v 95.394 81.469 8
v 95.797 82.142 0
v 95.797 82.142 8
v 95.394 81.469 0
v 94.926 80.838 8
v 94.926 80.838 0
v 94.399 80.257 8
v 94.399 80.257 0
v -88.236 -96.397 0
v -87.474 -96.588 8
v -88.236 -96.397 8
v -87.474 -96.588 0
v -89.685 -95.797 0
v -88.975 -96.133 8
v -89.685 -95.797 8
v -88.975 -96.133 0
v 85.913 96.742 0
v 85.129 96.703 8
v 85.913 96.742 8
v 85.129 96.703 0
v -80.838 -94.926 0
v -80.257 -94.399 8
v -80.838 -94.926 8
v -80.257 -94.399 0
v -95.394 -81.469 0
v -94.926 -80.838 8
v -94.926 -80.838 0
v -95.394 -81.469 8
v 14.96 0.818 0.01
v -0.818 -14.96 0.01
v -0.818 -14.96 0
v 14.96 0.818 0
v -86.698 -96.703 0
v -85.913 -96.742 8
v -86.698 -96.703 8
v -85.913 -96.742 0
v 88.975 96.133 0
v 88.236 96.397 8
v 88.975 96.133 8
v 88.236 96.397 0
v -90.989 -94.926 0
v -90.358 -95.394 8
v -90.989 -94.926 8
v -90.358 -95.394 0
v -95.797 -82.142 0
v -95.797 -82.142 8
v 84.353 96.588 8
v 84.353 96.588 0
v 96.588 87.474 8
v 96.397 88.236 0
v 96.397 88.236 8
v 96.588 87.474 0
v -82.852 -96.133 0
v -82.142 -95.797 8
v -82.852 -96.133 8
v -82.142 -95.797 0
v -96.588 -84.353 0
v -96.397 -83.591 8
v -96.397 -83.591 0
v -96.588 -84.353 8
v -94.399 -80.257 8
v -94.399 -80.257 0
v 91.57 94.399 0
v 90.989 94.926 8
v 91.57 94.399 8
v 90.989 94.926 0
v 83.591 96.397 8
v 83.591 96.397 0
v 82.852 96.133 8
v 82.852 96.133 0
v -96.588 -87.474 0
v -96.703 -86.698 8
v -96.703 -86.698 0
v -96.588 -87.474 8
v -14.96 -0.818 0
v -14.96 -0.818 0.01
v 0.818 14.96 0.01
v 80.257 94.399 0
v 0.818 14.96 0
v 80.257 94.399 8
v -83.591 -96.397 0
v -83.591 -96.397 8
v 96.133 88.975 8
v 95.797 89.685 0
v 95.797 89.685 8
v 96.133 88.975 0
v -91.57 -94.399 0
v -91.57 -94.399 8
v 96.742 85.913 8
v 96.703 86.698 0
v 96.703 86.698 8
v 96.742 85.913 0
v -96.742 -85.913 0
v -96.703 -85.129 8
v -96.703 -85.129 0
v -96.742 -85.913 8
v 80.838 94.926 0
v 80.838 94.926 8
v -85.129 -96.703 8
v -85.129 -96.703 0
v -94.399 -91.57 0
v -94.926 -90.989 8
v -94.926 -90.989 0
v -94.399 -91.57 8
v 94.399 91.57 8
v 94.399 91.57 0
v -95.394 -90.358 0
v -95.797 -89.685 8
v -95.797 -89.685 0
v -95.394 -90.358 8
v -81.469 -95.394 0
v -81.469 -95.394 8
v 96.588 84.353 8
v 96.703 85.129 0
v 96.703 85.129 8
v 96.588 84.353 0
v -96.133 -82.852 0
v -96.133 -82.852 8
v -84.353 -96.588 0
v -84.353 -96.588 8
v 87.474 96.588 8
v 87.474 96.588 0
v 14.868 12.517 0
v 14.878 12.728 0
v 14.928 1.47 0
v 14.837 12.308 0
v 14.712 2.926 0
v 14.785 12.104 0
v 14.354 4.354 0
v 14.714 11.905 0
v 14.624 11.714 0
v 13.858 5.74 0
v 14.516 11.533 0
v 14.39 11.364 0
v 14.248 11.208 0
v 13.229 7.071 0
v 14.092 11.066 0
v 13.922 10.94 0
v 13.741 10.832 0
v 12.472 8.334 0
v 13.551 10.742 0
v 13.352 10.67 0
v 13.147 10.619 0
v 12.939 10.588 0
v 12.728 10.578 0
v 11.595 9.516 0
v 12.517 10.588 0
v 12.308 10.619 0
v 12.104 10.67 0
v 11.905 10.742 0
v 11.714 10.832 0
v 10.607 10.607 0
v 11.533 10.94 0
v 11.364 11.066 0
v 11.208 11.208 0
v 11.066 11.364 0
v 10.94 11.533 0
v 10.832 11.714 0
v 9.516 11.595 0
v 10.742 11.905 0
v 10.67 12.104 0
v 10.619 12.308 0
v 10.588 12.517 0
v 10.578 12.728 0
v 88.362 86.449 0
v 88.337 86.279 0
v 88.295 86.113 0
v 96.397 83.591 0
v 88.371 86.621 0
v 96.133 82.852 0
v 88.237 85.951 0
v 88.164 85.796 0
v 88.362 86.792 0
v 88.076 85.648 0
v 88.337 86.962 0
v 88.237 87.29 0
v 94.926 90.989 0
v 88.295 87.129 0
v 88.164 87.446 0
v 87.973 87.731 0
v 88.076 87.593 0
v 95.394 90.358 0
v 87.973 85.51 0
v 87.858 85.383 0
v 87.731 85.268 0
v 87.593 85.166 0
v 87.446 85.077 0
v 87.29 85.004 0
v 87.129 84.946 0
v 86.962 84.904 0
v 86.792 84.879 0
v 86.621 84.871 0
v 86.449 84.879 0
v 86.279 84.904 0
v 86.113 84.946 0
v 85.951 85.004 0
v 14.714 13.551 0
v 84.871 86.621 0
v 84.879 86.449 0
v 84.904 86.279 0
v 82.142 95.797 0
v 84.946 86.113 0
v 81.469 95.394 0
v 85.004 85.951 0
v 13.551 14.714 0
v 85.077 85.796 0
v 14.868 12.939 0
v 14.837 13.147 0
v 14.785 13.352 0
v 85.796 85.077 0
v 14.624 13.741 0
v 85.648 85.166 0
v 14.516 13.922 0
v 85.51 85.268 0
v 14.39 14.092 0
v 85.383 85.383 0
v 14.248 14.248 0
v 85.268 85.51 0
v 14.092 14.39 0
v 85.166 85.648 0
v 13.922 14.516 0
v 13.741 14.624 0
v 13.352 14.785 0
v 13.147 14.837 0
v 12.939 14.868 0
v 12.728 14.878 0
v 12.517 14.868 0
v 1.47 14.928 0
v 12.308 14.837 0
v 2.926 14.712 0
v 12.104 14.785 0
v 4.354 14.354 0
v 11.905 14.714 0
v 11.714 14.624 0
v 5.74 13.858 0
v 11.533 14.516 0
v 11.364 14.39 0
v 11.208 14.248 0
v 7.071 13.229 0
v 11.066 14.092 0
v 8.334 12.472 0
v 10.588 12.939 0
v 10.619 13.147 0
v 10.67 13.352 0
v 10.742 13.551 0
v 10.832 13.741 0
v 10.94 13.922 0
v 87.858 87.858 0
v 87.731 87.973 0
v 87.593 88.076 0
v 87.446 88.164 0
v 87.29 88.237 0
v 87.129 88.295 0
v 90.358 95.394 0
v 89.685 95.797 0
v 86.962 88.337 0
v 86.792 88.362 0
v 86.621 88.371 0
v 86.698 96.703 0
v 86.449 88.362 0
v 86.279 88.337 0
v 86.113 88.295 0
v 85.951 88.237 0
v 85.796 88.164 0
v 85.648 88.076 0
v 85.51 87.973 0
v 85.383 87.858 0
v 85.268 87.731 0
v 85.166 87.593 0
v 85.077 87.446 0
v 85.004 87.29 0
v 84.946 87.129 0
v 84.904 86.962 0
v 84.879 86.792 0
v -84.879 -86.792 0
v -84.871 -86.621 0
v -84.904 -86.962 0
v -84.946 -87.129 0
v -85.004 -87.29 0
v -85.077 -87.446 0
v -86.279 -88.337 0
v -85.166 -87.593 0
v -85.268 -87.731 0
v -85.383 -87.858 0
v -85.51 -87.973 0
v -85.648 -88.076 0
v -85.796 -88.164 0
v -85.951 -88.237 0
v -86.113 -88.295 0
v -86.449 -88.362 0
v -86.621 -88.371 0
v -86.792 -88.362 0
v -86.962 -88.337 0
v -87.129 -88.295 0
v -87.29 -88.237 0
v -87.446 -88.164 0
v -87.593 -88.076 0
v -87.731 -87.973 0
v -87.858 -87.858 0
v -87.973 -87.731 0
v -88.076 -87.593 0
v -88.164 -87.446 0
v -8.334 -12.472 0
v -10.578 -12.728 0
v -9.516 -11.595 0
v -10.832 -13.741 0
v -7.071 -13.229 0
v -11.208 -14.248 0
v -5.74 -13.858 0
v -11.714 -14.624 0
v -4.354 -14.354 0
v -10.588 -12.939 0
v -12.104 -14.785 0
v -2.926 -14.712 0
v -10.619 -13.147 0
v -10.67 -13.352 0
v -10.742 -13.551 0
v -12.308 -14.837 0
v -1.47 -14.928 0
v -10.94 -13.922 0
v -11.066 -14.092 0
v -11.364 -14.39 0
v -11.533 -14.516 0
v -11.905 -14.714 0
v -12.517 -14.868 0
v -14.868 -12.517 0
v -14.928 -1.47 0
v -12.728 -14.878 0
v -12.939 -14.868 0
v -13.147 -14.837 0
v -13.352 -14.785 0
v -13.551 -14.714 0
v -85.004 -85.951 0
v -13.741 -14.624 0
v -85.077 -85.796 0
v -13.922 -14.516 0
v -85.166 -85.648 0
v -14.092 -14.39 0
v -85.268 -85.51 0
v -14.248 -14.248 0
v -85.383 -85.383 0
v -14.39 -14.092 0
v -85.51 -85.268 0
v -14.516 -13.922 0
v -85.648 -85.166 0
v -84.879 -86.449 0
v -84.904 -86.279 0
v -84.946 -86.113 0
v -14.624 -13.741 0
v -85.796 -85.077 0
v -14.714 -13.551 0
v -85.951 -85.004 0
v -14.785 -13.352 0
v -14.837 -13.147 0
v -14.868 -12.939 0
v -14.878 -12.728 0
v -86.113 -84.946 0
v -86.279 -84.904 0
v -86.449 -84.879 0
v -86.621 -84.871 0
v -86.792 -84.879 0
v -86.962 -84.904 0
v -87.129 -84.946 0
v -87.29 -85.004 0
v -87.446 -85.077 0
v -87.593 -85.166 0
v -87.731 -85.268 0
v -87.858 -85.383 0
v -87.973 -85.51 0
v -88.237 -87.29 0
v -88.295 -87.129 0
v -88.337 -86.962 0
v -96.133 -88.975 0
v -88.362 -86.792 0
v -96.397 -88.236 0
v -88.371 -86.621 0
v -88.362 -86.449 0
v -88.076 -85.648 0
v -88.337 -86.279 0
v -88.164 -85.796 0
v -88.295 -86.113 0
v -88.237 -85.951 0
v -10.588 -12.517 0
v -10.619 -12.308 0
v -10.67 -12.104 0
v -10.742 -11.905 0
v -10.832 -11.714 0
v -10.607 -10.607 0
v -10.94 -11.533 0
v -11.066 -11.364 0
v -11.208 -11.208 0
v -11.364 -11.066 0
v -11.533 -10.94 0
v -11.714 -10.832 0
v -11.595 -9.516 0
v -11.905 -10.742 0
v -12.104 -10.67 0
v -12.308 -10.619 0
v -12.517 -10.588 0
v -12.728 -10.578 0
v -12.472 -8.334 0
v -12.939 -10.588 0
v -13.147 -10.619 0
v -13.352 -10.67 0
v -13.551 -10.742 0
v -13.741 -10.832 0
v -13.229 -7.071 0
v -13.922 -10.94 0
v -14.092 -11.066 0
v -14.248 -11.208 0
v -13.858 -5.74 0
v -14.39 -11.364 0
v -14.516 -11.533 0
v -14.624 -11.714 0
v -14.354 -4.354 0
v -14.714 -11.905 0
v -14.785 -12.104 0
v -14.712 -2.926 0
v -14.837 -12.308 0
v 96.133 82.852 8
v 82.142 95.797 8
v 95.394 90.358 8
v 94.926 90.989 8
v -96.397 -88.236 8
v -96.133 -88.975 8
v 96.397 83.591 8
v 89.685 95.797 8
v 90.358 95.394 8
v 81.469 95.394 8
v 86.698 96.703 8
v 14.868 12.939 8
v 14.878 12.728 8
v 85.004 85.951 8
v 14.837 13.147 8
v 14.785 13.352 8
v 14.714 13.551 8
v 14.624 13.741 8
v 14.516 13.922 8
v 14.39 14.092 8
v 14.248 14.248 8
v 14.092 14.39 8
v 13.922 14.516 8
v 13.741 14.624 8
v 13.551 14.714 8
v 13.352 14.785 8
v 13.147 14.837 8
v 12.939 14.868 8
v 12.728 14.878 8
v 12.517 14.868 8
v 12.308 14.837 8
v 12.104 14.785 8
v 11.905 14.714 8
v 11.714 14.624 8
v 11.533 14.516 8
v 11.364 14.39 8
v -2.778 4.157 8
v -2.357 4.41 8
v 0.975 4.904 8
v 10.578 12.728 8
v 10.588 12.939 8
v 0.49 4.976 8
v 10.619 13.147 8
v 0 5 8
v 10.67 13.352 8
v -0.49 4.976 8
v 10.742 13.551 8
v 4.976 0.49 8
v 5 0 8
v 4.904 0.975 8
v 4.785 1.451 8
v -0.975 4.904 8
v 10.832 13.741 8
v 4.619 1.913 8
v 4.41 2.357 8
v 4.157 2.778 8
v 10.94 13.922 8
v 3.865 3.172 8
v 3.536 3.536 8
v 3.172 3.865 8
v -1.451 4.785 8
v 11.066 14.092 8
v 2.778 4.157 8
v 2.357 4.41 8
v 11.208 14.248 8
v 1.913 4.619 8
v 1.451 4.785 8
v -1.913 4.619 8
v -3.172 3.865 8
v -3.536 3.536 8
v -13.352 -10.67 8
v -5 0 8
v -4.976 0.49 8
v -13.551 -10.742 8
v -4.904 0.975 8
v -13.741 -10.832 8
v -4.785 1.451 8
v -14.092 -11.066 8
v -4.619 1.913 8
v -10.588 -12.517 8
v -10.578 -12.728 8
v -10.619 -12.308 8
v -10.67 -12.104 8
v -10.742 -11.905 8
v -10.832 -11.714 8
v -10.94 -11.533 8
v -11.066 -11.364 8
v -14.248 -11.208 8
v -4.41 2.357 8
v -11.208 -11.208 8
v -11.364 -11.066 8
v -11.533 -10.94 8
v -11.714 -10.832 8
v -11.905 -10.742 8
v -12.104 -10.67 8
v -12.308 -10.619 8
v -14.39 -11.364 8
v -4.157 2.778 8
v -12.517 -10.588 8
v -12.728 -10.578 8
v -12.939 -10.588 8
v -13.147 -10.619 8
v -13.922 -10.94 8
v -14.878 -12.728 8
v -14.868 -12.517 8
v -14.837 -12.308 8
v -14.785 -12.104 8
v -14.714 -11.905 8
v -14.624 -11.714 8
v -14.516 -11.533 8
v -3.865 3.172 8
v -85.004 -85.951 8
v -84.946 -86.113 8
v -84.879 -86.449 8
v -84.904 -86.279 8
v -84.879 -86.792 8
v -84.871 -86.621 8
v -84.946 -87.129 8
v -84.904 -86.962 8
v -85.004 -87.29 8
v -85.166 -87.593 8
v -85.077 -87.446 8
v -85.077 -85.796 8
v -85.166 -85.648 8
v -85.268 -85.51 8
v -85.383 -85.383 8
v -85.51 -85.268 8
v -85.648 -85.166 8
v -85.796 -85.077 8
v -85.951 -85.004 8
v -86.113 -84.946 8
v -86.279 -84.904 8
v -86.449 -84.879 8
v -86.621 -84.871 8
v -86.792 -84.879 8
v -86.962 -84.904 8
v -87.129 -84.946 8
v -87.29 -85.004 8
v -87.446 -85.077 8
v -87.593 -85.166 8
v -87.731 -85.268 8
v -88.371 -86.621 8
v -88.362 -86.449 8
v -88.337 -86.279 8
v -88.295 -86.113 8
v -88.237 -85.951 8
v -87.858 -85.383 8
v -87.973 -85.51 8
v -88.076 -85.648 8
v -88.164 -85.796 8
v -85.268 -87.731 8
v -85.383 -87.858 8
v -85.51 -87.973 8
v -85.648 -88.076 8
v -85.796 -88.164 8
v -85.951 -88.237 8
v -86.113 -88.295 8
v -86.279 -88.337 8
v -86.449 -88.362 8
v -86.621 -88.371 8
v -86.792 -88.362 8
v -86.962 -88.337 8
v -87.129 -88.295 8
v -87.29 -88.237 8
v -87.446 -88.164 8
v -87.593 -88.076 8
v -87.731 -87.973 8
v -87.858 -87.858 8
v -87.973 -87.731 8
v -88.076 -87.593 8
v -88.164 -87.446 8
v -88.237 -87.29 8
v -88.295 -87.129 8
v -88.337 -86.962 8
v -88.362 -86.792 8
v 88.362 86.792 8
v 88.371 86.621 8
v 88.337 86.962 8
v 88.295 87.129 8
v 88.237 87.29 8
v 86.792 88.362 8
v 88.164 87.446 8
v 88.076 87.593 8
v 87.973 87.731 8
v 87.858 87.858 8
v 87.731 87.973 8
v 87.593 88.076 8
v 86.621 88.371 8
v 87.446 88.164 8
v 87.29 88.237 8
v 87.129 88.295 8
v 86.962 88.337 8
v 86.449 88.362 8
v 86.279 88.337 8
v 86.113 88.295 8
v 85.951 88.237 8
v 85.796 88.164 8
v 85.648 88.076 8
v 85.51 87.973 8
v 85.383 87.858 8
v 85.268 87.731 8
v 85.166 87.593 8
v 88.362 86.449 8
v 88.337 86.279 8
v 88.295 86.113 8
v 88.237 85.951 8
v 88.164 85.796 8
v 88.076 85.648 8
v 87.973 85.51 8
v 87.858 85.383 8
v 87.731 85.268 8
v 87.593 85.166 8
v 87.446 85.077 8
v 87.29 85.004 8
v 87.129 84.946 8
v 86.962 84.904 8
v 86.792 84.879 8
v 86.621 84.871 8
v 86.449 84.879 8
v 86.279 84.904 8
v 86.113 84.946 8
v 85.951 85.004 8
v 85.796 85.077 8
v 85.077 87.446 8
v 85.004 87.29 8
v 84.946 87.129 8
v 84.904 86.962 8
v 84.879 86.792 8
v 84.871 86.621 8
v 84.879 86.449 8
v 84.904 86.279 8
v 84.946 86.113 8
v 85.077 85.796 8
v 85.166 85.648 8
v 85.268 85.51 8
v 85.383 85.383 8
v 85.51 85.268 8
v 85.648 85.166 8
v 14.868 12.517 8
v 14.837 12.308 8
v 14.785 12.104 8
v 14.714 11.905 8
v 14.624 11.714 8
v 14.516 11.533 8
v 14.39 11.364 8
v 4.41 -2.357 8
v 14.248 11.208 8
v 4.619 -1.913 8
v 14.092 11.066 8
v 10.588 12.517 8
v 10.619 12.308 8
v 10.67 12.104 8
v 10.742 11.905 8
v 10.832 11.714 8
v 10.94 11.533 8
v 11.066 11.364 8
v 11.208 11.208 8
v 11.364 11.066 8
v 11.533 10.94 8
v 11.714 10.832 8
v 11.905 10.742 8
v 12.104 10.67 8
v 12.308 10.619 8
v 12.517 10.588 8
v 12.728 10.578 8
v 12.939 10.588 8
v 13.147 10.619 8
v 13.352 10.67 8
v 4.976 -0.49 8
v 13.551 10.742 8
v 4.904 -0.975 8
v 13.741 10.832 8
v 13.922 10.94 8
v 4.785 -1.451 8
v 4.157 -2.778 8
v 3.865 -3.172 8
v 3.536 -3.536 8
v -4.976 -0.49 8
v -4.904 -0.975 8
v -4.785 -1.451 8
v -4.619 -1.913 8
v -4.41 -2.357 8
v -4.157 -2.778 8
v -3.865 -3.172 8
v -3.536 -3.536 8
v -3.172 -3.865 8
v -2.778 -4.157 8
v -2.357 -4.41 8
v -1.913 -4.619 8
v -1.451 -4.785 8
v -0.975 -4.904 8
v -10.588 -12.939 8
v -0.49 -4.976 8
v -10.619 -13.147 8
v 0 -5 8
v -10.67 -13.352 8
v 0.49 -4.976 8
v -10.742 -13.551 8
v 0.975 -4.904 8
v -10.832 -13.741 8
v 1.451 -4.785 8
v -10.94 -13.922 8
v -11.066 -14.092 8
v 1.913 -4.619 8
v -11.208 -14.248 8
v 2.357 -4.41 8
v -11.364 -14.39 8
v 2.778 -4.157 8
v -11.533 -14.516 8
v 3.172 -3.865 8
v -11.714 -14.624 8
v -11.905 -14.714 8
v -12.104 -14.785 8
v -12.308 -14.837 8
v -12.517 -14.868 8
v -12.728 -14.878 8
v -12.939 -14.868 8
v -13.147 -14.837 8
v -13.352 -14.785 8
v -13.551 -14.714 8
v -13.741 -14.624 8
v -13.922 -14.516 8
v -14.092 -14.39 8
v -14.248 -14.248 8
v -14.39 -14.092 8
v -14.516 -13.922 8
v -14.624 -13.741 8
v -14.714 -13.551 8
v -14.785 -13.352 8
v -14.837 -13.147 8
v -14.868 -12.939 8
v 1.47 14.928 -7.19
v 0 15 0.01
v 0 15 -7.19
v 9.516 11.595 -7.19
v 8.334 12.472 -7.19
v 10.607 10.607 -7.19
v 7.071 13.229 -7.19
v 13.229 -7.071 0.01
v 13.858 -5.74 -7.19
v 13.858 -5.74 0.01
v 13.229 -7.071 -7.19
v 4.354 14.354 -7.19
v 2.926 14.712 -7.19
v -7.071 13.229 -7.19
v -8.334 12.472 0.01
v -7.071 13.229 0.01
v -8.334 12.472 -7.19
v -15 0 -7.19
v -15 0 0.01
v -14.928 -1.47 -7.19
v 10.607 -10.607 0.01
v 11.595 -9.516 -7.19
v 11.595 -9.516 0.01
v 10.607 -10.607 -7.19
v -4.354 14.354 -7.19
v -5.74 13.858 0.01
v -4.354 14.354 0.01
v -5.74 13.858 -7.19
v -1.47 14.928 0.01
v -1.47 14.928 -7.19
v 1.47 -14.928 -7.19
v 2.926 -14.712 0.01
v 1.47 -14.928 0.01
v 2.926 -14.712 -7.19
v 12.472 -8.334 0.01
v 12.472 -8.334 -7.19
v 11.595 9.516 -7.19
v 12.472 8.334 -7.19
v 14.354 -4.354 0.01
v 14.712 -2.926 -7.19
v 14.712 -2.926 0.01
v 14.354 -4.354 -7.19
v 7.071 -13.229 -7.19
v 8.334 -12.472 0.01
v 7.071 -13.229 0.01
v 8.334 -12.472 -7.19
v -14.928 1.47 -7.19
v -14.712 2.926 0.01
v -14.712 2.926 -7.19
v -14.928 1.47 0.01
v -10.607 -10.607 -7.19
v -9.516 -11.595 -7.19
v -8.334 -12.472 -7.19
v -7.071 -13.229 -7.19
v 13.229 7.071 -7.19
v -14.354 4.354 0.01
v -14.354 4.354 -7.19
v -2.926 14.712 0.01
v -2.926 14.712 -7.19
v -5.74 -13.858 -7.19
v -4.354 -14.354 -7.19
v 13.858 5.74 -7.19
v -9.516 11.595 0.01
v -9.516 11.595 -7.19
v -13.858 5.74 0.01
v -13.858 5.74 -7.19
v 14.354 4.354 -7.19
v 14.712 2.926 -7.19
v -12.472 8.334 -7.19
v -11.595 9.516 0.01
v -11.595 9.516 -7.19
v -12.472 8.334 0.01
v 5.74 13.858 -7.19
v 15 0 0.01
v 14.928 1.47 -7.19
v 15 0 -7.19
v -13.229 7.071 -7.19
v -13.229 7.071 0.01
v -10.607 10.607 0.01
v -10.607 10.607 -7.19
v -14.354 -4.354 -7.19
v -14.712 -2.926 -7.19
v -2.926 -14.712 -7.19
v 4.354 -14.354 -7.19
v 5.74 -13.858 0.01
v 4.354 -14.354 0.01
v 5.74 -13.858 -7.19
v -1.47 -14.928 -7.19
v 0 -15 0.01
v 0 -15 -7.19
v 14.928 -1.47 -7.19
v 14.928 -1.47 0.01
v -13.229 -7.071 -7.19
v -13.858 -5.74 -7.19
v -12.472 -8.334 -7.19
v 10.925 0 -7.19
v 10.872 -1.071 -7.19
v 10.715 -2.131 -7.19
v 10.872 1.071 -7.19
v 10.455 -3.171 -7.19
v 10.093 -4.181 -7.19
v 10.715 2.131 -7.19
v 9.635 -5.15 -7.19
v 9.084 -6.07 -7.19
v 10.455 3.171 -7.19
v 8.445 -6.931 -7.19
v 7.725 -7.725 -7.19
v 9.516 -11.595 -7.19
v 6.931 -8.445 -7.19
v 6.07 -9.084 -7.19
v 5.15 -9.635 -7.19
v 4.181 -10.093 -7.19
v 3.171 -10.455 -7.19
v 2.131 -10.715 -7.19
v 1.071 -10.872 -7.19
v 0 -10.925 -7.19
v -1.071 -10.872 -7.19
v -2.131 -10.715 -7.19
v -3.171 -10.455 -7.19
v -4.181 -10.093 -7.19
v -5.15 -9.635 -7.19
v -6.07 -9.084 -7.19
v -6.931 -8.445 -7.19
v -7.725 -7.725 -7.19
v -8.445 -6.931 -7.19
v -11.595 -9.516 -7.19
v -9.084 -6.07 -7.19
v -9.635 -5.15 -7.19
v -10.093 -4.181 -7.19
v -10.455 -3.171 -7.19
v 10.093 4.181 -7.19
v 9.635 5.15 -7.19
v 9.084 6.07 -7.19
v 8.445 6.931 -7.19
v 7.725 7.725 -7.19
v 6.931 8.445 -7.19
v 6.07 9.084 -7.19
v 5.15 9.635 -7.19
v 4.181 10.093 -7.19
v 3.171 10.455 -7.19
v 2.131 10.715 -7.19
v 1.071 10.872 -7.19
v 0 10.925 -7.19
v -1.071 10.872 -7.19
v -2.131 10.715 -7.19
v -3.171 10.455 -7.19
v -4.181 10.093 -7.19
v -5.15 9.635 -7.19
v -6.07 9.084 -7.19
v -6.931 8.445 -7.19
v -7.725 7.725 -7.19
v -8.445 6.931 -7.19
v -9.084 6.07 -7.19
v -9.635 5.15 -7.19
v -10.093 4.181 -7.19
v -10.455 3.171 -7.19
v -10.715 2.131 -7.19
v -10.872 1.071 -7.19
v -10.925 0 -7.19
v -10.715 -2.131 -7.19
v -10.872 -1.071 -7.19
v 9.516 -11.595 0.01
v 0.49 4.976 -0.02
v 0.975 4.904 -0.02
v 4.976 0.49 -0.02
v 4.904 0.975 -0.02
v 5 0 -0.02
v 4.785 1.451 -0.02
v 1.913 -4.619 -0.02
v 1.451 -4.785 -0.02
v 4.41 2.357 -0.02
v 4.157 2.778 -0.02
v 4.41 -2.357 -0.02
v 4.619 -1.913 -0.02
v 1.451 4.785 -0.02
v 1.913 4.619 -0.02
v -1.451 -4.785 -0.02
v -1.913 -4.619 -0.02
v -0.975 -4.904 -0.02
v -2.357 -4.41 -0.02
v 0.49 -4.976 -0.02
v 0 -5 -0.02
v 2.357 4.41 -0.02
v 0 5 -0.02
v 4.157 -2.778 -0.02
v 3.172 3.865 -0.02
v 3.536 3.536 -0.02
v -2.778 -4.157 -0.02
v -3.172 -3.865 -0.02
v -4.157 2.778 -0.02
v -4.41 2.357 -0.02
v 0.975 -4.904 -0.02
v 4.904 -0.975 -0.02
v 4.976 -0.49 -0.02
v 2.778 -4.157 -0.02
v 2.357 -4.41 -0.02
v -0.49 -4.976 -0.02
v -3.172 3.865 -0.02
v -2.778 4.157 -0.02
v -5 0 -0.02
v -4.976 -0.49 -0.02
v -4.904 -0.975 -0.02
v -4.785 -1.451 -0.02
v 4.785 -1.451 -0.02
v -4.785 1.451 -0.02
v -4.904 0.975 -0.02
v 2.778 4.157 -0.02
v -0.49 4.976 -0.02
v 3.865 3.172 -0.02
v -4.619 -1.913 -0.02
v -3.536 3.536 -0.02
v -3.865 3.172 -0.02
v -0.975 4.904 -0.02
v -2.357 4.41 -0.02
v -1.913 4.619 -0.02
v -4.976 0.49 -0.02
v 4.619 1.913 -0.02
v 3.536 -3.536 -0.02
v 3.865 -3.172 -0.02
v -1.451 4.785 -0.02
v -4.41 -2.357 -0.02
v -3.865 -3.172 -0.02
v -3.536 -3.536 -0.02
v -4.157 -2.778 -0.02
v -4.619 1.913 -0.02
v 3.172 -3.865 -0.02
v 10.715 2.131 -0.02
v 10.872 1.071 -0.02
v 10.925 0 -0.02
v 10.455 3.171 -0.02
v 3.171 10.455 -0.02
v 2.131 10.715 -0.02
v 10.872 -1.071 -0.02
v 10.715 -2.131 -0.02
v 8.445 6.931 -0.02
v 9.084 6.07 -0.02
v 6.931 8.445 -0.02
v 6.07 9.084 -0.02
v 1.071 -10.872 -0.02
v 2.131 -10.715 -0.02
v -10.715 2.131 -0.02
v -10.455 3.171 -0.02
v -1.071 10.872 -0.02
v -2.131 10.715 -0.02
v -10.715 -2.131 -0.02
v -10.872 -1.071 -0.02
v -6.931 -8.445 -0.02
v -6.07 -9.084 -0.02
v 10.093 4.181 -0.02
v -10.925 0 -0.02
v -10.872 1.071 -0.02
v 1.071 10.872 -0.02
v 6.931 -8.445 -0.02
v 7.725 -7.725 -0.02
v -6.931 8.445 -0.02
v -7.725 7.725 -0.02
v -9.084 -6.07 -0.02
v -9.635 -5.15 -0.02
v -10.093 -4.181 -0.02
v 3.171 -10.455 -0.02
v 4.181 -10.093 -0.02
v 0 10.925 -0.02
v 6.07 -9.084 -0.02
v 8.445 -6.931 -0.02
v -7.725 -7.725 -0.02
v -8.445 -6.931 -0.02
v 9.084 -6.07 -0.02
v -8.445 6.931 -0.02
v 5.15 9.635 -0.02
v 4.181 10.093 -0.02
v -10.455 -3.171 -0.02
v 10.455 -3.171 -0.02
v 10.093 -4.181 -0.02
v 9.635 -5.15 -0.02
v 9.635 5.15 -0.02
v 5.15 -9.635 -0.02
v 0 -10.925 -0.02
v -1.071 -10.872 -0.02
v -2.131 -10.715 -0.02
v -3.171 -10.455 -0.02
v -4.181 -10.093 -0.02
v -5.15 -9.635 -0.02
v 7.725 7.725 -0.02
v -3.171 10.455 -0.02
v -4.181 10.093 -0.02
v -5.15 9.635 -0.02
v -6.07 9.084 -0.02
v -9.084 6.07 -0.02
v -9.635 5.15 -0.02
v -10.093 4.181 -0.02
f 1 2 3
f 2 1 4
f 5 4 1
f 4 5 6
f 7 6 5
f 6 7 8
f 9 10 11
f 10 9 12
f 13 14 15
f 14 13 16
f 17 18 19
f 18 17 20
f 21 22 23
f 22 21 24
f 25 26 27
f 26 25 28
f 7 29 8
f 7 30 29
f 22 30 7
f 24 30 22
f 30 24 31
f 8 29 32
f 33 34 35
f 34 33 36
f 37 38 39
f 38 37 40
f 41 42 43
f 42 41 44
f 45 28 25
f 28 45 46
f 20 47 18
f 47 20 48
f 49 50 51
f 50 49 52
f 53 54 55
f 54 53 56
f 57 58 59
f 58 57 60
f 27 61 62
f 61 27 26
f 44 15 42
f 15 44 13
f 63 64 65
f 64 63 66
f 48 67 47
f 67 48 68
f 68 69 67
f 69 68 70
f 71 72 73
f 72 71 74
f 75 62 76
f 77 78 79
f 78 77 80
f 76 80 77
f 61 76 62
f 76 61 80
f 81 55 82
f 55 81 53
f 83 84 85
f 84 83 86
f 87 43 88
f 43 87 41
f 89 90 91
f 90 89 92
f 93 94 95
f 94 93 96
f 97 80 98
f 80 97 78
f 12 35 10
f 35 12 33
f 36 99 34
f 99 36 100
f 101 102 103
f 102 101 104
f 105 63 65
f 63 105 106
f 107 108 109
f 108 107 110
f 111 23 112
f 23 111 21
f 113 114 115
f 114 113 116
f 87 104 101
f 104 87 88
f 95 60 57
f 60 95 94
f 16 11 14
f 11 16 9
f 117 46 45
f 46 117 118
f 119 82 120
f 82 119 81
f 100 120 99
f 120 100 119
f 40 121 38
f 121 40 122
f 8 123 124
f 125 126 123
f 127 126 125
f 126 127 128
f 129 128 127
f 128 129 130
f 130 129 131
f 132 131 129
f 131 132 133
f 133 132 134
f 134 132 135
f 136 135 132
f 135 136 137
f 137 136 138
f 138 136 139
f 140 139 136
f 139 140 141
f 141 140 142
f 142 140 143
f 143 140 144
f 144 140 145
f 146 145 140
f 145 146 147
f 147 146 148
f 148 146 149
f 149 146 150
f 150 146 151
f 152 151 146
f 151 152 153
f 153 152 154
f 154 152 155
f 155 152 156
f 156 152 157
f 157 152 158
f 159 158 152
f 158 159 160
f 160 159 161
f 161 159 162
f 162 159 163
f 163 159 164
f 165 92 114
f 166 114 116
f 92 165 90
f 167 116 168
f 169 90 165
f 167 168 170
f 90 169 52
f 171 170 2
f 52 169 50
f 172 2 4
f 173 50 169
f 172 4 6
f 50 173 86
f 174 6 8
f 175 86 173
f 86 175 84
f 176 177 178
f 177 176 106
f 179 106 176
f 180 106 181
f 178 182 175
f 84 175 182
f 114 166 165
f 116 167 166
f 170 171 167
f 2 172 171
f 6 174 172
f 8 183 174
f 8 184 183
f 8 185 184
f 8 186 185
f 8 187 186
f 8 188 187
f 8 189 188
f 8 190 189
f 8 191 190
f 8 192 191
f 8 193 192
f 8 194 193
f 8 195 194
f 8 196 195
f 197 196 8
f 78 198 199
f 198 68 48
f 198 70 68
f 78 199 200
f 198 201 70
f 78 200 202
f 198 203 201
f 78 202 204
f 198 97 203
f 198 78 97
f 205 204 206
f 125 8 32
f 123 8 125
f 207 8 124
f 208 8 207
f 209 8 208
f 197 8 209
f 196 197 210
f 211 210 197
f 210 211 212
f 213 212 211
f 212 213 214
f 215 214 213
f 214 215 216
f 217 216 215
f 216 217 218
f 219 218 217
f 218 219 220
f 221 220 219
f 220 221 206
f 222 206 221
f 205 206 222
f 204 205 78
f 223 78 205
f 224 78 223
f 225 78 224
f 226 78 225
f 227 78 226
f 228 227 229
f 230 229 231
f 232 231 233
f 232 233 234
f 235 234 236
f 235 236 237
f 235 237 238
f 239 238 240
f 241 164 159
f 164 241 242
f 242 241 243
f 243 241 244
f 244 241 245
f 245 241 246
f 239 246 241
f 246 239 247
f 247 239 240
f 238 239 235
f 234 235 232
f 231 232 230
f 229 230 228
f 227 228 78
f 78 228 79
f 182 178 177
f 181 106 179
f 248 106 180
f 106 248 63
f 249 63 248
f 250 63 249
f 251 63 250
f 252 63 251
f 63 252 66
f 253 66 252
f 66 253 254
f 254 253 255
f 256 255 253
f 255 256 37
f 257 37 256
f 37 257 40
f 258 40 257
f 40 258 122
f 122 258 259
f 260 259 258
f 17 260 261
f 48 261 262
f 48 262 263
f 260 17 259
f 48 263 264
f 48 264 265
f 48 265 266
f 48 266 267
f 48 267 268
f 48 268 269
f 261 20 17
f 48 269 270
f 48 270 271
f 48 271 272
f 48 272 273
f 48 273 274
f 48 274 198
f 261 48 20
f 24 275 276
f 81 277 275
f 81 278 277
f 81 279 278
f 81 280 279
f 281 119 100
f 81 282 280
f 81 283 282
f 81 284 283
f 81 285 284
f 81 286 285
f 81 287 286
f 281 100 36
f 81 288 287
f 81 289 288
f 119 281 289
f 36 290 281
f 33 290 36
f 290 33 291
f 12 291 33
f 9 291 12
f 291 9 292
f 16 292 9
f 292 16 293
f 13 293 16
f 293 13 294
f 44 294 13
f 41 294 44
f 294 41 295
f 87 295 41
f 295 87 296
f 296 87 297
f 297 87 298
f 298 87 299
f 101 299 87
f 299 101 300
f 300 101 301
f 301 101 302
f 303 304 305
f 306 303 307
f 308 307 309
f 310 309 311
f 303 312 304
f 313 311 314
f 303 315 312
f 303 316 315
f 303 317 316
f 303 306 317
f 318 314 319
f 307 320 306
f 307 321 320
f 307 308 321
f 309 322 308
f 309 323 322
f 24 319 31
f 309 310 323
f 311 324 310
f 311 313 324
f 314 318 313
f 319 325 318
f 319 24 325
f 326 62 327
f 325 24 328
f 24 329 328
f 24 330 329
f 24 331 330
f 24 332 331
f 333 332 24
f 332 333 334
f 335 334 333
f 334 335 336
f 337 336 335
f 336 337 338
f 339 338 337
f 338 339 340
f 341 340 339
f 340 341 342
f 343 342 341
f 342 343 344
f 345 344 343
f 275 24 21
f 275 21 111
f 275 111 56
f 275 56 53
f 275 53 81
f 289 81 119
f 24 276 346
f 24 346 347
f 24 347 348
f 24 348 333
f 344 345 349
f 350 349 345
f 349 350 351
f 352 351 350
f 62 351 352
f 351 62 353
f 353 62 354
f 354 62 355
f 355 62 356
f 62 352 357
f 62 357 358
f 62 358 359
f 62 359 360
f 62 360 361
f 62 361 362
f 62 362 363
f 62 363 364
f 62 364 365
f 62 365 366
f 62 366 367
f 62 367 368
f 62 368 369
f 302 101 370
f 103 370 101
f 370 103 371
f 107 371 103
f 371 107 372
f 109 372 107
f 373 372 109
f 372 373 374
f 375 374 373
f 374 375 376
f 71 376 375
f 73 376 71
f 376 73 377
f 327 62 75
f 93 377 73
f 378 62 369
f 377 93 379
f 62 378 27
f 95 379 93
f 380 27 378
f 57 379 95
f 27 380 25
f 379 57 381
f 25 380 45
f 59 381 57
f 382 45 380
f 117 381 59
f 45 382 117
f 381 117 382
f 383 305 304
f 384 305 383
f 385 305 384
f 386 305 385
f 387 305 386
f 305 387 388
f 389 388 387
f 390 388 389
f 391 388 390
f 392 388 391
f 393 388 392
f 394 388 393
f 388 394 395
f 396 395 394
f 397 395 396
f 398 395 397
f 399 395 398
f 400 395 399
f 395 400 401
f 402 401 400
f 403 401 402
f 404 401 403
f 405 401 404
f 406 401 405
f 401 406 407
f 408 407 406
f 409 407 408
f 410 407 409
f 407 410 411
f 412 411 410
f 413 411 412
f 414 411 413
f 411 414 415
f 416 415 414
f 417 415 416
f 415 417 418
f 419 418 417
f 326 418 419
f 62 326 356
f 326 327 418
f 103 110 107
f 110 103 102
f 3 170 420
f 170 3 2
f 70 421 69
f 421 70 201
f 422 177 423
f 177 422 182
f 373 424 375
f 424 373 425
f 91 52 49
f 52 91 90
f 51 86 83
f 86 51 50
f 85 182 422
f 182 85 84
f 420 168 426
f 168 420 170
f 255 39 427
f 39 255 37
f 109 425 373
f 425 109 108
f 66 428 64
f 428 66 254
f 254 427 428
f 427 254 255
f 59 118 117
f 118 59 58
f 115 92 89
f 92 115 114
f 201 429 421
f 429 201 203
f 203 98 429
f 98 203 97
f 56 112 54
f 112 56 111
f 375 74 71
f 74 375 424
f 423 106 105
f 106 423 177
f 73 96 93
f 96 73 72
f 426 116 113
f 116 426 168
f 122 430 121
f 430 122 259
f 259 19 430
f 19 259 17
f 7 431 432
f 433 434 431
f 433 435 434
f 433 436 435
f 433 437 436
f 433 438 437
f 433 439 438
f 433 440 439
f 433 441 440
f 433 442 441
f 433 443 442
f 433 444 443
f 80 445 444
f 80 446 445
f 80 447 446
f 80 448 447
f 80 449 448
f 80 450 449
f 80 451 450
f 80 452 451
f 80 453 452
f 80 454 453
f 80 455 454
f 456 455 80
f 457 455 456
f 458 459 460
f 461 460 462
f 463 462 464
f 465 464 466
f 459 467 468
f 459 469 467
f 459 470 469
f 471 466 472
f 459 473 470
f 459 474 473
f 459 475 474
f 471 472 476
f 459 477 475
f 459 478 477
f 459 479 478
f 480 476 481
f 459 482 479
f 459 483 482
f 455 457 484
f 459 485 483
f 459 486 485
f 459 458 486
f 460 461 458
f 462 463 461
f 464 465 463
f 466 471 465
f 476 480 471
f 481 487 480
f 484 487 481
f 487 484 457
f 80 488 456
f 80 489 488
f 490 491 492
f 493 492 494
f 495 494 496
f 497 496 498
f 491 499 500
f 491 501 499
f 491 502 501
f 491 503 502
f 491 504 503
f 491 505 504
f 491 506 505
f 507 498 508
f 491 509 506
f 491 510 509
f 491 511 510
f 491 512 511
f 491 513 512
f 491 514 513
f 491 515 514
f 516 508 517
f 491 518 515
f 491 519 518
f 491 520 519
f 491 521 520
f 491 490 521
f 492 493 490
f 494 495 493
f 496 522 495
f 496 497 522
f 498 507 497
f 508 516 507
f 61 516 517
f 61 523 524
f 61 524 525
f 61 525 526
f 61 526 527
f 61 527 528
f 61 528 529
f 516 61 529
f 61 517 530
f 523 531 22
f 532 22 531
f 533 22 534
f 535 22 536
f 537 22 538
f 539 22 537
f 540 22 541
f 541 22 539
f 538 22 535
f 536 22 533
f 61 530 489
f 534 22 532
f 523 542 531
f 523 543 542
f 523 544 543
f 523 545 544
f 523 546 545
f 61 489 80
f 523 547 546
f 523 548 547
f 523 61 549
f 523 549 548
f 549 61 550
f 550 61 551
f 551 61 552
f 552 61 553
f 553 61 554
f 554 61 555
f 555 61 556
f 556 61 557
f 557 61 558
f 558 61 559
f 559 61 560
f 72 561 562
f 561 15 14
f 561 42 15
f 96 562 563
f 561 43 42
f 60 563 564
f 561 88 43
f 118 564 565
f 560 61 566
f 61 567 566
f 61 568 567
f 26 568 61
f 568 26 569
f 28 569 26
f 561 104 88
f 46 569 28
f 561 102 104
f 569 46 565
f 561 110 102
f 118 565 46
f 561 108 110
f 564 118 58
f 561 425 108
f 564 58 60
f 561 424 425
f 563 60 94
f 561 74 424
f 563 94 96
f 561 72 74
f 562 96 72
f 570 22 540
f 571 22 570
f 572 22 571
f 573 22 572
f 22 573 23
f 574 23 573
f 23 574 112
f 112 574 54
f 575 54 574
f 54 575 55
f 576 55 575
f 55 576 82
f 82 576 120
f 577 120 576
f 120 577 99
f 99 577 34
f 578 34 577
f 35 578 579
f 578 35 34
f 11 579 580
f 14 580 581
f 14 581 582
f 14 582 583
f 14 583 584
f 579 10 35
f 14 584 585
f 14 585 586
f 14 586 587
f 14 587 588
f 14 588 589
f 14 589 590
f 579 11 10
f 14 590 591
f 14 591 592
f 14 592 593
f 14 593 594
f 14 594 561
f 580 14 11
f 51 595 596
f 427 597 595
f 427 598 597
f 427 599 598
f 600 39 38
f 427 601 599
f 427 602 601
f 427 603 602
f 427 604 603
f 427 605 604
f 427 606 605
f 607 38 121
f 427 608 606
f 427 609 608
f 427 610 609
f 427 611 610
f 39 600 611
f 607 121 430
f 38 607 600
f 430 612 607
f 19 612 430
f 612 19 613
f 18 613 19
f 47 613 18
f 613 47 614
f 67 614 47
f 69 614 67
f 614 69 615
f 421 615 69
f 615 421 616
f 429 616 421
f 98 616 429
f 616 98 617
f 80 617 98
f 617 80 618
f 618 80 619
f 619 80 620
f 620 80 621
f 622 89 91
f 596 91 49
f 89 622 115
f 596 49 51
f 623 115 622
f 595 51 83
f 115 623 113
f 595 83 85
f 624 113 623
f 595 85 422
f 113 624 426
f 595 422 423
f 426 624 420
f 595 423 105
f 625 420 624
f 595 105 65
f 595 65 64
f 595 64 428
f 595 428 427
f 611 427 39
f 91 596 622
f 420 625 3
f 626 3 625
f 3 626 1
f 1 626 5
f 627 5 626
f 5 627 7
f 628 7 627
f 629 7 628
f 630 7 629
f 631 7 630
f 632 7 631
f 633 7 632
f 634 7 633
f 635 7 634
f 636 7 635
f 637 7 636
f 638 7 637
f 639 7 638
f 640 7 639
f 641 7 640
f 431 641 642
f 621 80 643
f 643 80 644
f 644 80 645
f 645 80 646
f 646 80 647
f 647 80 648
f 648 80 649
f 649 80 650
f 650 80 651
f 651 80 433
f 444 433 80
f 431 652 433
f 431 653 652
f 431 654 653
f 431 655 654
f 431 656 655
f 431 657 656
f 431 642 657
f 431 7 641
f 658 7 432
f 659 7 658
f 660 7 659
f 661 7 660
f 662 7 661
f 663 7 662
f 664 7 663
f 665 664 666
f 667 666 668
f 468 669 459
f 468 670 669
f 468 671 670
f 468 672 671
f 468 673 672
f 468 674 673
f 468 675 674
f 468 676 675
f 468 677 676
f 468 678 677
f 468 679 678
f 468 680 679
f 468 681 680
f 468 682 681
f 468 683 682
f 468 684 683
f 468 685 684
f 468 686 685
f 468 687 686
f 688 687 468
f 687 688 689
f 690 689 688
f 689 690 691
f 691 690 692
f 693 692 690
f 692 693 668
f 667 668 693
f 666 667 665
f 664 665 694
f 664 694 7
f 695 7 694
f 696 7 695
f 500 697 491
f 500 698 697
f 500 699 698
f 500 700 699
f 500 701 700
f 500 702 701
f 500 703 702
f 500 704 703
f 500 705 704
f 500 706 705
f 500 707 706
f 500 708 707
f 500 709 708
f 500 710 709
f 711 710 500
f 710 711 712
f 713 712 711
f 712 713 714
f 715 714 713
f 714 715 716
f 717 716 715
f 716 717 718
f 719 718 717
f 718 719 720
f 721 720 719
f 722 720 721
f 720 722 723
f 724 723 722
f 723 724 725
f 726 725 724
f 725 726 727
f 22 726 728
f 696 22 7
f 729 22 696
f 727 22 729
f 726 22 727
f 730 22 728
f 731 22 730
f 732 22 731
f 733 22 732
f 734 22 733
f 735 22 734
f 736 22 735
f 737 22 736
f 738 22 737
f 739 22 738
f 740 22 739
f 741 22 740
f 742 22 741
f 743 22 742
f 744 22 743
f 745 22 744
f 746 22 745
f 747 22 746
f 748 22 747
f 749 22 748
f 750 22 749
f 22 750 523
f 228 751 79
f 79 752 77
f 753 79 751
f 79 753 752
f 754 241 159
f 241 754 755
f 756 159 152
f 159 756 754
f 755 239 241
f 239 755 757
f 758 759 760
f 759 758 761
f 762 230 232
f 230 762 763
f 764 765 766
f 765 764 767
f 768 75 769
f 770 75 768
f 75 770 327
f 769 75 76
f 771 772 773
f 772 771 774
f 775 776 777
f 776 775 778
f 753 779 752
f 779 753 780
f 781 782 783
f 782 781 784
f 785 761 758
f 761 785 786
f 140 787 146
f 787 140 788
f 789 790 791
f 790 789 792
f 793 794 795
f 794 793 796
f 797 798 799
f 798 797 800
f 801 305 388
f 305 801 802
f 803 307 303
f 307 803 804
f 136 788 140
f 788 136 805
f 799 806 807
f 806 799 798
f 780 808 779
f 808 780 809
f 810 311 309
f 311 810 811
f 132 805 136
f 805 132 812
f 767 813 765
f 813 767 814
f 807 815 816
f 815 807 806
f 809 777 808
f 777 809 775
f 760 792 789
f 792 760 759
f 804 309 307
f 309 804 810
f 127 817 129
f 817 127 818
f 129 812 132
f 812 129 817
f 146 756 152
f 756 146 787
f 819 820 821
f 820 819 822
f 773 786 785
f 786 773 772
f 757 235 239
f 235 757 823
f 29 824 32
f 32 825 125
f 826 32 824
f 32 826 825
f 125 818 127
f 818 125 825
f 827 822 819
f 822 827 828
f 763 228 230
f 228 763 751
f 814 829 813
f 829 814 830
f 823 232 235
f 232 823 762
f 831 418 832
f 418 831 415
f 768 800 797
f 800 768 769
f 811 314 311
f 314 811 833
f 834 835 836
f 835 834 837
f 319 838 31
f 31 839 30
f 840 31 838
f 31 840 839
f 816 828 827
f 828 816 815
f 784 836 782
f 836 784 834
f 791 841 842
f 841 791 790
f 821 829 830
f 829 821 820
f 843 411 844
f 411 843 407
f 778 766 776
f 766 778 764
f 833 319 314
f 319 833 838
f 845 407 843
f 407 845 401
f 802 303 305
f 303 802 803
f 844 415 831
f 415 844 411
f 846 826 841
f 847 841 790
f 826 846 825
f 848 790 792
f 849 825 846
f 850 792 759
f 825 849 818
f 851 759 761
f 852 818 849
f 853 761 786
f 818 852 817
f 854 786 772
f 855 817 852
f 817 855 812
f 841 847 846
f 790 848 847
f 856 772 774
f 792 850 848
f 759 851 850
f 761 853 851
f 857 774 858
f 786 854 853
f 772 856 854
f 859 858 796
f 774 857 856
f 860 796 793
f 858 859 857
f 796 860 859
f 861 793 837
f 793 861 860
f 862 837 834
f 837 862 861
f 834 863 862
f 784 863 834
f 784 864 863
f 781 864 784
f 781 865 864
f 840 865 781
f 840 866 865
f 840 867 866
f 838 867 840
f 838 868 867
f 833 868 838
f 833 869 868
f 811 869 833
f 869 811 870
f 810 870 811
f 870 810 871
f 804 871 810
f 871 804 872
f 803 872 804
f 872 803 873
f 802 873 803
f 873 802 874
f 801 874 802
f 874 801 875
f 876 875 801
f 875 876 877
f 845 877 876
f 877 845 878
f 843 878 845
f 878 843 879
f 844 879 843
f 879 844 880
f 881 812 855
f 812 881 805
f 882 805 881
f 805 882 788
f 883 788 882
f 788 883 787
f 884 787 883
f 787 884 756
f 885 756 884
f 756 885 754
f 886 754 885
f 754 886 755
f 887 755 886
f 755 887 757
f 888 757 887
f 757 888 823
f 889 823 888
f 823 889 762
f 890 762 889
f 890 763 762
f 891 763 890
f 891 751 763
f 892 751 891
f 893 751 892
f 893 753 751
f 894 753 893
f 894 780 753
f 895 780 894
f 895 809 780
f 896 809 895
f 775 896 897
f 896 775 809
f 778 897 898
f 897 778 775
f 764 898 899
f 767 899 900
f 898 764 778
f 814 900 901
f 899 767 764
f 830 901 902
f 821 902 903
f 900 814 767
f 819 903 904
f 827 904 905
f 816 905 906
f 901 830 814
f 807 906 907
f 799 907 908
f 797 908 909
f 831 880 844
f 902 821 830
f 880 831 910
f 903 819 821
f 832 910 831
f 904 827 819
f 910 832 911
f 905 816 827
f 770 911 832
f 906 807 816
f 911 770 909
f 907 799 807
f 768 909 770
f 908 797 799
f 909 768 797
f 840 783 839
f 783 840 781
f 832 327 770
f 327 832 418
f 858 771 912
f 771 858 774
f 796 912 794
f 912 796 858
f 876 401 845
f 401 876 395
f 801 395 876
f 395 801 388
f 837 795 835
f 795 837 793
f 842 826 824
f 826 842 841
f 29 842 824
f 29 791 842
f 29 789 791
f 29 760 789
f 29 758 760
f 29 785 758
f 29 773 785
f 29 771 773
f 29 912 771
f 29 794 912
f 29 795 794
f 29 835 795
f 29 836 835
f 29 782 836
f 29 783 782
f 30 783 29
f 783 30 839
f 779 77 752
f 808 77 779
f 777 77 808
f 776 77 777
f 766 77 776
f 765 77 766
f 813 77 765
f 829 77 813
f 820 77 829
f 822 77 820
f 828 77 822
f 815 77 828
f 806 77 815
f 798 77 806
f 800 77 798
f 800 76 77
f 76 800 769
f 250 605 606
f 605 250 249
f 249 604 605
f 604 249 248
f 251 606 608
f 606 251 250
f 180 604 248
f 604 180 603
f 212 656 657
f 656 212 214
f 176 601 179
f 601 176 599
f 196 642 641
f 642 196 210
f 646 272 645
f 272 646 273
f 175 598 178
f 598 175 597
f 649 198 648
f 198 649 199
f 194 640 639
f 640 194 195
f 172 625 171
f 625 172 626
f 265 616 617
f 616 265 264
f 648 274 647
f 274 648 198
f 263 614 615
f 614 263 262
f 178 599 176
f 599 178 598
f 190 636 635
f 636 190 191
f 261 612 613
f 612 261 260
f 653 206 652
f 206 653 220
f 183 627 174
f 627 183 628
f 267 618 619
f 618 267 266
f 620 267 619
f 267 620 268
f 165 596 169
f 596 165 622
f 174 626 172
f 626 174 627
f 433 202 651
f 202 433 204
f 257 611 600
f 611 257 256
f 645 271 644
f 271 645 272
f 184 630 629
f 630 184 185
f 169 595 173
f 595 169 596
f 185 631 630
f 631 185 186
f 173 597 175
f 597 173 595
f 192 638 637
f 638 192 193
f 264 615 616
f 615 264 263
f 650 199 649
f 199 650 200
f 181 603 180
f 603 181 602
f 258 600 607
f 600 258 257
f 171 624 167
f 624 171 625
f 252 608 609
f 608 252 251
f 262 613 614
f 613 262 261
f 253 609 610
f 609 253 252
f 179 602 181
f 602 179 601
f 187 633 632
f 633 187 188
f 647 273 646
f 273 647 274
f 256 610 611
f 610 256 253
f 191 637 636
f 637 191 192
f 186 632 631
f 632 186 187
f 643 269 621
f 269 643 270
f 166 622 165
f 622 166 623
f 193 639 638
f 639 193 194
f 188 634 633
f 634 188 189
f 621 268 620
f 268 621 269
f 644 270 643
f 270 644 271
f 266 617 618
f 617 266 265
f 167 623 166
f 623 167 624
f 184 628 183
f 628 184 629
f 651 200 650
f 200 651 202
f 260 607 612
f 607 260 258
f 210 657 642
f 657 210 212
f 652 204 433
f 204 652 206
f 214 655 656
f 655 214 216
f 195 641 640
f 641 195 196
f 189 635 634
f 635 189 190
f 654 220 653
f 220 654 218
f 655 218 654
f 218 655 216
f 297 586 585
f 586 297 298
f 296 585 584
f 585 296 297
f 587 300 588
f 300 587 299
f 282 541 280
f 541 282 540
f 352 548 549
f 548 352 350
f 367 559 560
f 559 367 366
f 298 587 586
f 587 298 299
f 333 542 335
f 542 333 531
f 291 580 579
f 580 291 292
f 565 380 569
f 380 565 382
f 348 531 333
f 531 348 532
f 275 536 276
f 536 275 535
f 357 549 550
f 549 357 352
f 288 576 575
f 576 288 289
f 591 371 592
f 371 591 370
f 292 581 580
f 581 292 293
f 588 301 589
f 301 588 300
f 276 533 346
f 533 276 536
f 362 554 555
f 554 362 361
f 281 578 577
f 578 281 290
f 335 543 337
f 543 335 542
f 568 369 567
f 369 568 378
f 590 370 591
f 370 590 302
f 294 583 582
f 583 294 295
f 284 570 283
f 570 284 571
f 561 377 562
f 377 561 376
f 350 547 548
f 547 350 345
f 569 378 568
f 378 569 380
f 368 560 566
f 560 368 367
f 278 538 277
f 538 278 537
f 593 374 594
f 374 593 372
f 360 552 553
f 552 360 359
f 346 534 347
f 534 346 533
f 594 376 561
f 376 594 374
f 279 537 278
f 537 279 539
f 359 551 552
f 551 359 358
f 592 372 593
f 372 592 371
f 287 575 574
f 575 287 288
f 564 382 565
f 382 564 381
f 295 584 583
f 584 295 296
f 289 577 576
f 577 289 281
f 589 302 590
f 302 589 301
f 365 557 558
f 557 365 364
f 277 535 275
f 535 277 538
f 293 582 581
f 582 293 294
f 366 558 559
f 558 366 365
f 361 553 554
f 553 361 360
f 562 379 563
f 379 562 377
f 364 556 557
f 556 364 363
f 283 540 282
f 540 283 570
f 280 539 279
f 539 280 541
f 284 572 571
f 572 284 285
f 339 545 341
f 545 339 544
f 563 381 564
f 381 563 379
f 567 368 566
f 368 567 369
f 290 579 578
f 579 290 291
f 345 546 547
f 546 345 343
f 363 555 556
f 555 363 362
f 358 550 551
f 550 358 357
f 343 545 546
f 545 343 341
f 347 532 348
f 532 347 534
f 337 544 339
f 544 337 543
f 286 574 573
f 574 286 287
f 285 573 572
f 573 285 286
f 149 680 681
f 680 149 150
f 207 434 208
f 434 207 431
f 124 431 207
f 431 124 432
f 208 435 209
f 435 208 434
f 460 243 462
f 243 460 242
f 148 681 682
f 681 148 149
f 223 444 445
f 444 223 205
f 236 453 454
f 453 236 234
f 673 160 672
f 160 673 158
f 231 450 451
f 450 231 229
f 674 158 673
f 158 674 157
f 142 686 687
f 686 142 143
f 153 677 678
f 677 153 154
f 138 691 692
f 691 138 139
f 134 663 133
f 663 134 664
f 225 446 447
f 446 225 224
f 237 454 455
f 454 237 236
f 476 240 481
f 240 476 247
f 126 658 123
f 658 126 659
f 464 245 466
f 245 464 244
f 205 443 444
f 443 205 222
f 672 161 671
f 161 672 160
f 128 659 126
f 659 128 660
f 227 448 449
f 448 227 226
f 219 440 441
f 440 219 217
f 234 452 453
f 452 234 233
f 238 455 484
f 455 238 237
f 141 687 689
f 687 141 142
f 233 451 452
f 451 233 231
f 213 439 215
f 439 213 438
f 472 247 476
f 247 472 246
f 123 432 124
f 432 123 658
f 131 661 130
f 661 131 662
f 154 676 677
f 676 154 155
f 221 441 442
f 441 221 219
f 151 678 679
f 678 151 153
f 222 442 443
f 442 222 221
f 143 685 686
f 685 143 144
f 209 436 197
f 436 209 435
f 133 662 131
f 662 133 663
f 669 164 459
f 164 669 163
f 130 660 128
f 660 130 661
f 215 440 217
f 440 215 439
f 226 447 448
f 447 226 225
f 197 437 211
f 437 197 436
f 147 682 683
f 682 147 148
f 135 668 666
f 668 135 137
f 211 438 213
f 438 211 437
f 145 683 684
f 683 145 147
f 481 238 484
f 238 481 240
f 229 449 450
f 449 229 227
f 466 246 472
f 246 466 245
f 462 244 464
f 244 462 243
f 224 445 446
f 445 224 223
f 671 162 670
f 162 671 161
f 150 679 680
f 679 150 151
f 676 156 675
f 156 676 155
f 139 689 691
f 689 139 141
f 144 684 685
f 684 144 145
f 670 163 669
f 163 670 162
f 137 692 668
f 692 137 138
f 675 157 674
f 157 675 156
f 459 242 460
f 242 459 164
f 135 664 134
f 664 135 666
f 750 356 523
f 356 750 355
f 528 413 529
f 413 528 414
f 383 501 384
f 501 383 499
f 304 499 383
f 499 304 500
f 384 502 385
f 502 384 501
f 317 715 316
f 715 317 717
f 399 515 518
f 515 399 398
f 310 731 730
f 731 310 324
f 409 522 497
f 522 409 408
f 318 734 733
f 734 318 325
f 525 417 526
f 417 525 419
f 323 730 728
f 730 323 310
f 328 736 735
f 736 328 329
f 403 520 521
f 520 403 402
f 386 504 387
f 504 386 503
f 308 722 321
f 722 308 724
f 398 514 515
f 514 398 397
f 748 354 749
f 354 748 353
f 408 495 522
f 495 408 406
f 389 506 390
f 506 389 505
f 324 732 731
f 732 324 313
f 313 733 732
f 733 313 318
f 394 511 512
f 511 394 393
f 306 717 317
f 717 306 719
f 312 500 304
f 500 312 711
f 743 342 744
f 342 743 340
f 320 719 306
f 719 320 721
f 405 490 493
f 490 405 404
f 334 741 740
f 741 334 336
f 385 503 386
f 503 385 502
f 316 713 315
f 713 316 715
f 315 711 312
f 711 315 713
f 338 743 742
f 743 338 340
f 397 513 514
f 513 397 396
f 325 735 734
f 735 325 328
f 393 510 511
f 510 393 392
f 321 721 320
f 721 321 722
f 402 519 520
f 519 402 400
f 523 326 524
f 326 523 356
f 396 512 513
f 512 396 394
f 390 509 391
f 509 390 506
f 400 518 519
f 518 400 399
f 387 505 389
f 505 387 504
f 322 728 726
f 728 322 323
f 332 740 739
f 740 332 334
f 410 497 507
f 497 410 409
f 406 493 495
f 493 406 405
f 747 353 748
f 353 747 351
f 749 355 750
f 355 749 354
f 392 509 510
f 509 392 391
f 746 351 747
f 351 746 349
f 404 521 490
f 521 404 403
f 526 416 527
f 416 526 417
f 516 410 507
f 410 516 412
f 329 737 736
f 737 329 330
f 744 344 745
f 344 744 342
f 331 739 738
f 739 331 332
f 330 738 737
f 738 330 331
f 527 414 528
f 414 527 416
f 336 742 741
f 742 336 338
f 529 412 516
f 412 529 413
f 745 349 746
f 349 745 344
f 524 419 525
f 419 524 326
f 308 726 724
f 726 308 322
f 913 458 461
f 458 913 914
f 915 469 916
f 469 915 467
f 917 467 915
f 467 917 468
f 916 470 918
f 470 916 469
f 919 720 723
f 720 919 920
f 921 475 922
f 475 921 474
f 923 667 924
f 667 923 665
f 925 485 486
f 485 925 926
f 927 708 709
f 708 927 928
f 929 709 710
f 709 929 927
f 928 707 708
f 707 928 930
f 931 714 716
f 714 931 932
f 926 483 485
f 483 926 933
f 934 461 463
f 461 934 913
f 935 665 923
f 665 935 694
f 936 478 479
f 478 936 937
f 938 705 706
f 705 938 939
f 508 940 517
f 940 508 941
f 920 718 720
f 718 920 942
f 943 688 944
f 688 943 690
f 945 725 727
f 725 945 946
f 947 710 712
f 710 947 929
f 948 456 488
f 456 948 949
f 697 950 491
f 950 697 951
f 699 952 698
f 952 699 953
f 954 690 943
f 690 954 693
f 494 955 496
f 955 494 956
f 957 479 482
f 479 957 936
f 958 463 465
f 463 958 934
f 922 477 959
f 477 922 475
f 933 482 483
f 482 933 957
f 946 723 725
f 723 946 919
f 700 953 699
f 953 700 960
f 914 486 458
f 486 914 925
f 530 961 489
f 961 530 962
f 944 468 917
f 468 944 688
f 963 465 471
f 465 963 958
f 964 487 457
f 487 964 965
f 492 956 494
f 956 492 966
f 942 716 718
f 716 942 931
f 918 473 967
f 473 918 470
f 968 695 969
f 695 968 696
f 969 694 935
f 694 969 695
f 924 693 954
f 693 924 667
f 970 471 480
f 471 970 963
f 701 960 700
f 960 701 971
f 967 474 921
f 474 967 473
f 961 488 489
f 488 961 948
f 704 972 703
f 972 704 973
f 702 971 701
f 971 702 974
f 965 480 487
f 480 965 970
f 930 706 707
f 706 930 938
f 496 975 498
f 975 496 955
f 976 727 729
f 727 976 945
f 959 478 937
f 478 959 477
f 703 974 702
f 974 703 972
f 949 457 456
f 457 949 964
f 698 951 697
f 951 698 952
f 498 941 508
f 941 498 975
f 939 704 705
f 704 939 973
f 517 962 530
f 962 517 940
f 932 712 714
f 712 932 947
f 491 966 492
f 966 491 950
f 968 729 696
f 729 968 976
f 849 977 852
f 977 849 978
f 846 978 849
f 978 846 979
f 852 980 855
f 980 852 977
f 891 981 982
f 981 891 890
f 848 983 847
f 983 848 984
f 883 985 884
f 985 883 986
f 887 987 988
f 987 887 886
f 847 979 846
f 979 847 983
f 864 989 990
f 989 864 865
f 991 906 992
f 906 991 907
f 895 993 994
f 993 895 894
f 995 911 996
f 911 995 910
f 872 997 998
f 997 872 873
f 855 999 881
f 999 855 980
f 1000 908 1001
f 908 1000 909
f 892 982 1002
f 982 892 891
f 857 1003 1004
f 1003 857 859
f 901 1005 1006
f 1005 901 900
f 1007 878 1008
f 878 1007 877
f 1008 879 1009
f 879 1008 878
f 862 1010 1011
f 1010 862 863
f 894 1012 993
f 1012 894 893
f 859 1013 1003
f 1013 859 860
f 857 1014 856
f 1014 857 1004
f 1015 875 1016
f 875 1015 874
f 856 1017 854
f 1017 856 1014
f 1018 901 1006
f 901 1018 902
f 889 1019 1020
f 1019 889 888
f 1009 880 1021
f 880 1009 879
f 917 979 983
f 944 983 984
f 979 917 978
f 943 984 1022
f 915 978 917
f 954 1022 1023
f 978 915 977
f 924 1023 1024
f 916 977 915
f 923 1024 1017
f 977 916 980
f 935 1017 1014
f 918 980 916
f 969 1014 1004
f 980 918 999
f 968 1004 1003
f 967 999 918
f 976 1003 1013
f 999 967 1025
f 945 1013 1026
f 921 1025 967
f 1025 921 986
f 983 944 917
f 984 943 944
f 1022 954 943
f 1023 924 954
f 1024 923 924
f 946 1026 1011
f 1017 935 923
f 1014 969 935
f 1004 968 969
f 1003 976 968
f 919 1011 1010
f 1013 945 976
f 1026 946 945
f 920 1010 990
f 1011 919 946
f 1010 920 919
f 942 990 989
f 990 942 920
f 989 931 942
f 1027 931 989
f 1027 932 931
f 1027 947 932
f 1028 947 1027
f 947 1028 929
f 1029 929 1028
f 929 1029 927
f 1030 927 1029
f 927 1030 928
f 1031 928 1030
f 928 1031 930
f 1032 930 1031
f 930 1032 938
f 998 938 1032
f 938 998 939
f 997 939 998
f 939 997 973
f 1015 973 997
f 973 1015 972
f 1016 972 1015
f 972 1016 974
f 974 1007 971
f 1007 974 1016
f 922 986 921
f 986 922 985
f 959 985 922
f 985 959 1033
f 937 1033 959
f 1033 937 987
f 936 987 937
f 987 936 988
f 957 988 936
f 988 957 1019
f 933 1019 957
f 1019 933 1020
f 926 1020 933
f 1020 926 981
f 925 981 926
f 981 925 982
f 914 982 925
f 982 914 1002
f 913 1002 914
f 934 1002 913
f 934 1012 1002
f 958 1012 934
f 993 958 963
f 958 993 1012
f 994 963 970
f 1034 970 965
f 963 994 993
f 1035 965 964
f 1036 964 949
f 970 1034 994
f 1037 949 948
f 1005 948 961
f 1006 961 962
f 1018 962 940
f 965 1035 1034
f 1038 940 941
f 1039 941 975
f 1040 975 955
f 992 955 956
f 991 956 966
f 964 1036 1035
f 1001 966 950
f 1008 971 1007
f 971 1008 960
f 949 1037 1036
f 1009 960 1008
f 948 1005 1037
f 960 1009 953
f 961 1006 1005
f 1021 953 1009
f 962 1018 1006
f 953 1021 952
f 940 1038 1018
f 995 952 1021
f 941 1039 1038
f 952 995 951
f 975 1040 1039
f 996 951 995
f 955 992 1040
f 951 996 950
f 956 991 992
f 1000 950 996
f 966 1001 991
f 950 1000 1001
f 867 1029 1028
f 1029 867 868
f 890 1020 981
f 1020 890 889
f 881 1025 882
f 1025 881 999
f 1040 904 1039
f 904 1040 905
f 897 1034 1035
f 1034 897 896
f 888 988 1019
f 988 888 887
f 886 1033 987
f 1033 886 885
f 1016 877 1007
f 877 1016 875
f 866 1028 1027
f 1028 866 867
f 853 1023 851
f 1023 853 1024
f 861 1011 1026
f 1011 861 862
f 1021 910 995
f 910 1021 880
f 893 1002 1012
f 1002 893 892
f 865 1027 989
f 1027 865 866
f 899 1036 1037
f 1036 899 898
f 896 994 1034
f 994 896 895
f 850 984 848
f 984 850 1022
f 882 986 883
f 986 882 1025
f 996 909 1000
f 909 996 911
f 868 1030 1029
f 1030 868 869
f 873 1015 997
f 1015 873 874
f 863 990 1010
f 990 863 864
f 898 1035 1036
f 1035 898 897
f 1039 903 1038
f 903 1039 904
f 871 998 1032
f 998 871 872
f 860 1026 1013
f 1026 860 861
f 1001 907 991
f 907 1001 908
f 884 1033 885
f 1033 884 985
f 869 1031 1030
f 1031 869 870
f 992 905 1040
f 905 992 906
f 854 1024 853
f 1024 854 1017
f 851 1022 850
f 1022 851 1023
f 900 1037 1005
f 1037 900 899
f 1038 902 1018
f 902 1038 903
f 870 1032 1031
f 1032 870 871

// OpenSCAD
// Gen-DC — front BEARING BRIDGE (bar endbell, 2026-10-10): a 608 boss on a 20 mm wide bar that spans the
// two frame rods at 45 deg and 45+180 deg (R = flange_bolt_r). The front bridge uses the rods at 45/225 deg, the rear
// bridge the rods at 135/315 deg, so the two bridges cross at 90 deg and the stator is held at 4 points.
// A bar instead of a full disc is what lets this big-ring kit fit ONE 410 mm plate. Print flat face DOWN (boss up, no supports).
// Brace holes (temporary M4 jack rods, R = brace_r) sit on the bar axis.
include <parameters.scad>;
$fn = 64;
bar_w = 20;
bar_len = 2 * (flange_bolt_r + 9);
module bar_2d() { offset(r=8) offset(delta=-8) square([bar_len, bar_w], center=true); }
difference() {
    rotate([0, 0, 45]) union() {
        linear_extrude(endbell_thick) bar_2d();
        translate([0, 0, -bearing_h + 0.01]) cylinder(d=30, h=bearing_h);
    }
    translate([0, 0, -bearing_h - 0.1]) cylinder(d=endbell_shaft_clear, h=50);
    translate([0, 0, -bearing_h - 0.02]) cylinder(d=bearing_d, h=bearing_h);
    for (s = [0, 180]) rotate([0, 0, 45 + s]) translate([flange_bolt_r, 0, -20]) cylinder(d=m3_clear, h=60);
    for (a = brace_angles) translate([brace_r*cos(a), brace_r*sin(a), -20]) cylinder(d=brace_d, h=50);
}
